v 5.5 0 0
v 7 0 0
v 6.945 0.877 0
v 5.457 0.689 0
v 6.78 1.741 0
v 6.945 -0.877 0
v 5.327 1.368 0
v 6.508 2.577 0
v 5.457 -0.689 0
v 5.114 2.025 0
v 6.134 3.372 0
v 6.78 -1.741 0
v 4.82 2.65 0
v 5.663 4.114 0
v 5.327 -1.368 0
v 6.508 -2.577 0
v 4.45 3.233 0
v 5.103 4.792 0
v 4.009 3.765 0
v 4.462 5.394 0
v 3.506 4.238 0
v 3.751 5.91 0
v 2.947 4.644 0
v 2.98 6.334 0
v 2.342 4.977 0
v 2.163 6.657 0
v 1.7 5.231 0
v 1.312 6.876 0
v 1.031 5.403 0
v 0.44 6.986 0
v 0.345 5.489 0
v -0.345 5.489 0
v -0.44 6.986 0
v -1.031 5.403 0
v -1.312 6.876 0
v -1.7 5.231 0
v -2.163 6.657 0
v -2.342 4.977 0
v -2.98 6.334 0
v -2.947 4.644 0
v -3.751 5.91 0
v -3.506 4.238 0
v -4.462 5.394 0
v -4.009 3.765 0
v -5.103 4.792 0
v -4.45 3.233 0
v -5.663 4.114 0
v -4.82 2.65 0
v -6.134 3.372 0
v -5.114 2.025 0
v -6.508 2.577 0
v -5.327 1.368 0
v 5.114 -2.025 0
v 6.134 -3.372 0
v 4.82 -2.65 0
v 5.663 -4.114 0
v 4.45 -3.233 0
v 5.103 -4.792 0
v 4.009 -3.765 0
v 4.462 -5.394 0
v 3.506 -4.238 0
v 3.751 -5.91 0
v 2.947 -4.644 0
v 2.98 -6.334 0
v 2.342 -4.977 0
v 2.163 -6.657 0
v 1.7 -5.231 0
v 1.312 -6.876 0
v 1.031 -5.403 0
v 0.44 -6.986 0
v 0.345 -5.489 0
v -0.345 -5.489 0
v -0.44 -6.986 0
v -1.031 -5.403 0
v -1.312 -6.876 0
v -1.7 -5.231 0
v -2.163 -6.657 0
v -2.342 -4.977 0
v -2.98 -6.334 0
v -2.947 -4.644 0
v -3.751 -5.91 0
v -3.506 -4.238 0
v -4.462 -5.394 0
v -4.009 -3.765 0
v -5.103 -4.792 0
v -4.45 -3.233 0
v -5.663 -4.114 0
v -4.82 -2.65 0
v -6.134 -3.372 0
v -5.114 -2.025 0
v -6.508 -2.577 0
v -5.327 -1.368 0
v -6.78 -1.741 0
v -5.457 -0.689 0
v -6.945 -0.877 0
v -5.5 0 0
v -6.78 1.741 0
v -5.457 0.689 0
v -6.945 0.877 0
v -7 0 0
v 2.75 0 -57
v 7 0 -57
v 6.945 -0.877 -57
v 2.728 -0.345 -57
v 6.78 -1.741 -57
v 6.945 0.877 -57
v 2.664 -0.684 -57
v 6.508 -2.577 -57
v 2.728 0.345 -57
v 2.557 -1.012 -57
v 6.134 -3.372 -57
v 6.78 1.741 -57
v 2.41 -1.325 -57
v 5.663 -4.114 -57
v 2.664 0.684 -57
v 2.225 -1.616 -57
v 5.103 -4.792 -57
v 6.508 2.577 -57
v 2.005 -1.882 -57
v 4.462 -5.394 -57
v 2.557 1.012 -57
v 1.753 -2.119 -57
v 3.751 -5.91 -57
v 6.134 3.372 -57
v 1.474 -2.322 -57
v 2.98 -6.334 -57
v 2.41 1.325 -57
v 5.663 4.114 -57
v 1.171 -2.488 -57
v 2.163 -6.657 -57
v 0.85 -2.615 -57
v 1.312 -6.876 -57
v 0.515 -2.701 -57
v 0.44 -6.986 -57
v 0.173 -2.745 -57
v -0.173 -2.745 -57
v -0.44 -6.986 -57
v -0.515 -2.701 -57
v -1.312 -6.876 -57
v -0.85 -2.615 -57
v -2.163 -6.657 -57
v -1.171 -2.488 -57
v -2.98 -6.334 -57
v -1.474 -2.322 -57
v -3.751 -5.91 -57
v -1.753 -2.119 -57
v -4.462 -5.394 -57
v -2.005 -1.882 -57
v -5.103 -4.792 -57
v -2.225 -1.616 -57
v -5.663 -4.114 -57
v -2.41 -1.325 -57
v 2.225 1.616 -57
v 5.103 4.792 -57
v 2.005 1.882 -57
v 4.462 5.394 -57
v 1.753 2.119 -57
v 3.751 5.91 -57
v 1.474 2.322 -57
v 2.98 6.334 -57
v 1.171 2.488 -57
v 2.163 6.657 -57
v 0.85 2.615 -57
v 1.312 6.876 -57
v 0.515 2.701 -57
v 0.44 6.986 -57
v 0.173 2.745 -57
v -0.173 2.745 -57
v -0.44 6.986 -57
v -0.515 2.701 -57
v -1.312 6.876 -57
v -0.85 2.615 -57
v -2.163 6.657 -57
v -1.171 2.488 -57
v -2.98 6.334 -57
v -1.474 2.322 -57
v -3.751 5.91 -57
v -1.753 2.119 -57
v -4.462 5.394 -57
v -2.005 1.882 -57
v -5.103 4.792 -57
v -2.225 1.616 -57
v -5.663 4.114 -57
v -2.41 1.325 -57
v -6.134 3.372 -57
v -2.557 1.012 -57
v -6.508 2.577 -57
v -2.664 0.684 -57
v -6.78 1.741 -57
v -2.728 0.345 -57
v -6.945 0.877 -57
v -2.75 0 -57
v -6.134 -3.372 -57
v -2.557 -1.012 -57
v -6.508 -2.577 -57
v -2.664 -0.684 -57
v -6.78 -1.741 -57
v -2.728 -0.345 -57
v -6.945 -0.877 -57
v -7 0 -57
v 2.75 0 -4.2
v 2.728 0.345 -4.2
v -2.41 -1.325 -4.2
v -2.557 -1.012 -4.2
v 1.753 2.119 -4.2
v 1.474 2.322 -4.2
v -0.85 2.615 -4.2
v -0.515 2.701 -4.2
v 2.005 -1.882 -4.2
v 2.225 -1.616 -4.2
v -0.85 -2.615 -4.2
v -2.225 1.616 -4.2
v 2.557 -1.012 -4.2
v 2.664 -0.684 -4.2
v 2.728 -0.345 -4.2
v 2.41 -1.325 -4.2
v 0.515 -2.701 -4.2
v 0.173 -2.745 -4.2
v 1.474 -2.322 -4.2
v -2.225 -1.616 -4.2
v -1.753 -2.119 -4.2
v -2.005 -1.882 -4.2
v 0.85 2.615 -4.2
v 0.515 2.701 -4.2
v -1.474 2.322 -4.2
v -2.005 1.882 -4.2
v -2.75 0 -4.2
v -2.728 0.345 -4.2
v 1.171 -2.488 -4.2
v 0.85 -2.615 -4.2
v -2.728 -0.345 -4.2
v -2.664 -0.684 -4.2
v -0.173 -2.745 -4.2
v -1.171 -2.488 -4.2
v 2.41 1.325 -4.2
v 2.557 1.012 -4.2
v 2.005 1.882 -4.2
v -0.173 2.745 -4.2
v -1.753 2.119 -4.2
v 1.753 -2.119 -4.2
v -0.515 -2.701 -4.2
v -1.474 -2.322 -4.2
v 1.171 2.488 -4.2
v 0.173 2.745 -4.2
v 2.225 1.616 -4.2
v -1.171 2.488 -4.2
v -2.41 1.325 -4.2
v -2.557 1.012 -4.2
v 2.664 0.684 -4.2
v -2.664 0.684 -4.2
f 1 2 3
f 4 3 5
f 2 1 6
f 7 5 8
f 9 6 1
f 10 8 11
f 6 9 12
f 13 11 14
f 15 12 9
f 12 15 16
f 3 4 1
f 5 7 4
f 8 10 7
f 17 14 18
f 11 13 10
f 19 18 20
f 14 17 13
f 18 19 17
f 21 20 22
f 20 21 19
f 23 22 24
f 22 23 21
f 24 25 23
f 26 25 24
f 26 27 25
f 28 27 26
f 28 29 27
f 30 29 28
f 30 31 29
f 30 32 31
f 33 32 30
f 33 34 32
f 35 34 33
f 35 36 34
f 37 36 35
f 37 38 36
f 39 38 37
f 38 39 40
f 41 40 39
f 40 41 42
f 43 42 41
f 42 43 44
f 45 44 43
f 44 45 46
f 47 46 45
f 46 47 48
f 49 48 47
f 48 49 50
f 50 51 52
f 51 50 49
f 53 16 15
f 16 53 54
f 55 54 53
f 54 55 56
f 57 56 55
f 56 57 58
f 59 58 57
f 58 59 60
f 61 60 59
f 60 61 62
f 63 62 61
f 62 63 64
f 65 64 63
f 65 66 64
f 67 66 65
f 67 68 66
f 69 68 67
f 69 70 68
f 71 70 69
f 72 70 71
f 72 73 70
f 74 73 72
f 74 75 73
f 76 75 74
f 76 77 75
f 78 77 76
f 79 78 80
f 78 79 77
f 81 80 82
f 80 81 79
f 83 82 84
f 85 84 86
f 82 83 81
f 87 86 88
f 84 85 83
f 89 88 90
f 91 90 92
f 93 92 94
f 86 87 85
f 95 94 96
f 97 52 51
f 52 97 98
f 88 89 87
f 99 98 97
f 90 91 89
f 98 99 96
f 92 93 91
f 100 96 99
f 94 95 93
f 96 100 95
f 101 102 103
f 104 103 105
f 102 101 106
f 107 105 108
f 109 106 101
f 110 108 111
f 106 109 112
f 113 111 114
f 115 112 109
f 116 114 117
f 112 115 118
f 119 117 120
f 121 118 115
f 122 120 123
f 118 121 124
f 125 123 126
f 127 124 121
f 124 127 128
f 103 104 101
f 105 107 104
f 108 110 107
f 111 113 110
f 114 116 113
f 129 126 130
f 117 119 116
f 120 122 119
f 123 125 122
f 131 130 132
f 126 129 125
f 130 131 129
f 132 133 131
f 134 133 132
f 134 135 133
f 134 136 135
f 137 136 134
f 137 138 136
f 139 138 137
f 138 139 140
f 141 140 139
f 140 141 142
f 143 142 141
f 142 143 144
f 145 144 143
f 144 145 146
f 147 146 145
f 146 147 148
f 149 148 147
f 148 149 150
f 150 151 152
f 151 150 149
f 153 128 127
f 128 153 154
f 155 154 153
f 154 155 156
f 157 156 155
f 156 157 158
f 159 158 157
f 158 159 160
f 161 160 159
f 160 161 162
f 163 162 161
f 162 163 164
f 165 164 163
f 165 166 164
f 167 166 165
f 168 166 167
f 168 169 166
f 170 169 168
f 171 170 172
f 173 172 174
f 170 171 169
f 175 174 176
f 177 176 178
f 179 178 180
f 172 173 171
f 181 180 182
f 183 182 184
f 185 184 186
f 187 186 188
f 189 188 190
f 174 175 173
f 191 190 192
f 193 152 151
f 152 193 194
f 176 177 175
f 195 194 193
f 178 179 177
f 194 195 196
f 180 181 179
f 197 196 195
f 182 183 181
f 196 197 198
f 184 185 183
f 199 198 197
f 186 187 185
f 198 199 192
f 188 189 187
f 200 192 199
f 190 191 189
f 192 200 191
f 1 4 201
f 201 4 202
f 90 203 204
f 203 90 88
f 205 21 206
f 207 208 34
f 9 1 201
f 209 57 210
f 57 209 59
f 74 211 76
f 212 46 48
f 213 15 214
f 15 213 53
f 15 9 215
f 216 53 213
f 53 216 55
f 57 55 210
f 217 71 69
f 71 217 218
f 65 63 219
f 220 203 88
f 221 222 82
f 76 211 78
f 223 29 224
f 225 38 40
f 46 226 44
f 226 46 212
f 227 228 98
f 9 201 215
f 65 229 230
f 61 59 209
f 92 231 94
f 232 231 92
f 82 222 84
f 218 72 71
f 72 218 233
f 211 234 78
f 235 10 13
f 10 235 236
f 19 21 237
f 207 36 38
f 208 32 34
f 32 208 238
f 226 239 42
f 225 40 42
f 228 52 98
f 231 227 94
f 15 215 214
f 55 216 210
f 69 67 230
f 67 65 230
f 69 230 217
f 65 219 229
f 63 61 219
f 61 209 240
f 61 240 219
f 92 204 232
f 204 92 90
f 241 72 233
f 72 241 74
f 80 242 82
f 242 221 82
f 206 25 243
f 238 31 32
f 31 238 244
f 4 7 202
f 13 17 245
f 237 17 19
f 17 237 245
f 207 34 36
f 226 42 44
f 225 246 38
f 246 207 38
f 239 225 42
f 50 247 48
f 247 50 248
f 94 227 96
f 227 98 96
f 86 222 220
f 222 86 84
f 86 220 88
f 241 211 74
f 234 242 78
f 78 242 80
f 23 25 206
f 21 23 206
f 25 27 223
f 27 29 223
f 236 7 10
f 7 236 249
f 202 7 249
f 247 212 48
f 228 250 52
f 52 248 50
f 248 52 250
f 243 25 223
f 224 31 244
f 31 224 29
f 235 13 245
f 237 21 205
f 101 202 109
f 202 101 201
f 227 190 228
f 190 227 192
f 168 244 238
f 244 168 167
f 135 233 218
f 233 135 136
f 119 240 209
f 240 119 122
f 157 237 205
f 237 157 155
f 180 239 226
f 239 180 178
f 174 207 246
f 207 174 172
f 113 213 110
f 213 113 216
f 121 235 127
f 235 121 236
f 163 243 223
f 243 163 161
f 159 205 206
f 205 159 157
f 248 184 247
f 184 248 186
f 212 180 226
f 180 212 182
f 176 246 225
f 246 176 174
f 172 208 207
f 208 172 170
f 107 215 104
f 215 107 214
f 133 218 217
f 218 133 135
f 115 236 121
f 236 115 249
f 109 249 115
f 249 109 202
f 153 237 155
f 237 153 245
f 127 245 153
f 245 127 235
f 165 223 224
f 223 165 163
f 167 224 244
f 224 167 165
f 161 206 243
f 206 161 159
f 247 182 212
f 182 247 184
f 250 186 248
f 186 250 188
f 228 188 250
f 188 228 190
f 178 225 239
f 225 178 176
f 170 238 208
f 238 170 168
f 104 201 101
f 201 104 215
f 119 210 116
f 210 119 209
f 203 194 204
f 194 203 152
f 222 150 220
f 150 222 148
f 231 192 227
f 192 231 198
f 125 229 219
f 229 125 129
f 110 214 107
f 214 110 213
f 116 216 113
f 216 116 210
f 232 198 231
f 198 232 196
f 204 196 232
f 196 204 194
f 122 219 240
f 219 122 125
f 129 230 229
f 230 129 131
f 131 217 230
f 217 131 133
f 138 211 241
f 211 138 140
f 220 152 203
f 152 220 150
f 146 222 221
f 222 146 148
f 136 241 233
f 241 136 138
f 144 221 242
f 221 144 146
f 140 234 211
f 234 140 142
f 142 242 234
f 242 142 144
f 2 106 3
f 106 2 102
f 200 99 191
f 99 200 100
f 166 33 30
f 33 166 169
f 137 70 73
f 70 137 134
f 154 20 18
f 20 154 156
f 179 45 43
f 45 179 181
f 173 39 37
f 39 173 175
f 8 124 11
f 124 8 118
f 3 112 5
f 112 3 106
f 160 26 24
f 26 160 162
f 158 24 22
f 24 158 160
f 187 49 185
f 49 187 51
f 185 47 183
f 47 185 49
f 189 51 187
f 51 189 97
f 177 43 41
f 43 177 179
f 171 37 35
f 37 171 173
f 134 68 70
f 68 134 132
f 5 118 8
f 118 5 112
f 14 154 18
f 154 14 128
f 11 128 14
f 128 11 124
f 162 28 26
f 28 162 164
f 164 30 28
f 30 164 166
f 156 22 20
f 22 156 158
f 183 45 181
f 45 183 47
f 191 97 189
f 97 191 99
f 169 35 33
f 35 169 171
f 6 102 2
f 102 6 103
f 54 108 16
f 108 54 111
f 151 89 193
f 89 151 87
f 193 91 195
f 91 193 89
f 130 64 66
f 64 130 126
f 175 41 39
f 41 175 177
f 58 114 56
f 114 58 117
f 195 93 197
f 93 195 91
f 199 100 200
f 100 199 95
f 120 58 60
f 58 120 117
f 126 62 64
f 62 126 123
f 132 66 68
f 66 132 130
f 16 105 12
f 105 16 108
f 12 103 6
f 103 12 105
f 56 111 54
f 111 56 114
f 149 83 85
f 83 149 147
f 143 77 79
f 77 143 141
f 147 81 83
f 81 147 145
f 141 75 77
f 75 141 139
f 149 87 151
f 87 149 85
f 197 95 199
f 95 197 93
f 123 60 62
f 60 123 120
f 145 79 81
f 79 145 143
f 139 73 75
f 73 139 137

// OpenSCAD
$fn = 50;


difference() {
	union() {
		translate(v = [0, 0, -57.0000000000]) {
			cylinder(h = 57, r = 7.0000000000);
		}
		cylinder(h = 0, r = 13.0000000000);
	}
	union() {
		translate(v = [0, 0, 0]) {
			rotate(a = [0, 0, 0]) {
				difference() {
					union() {
						#translate(v = [0, 0, -57.0000000000]) {
							cylinder(h = 57, r = 2.2500000000);
						}
						#translate(v = [0, 0, -4.2000000000]) {
							cylinder(h = 4.2000000000, r = 7.0000000000, r1 = 2.7500000000, r2 = 5.5000000000);
						}
						#translate(v = [0, 0, -57.0000000000]) {
							cylinder(h = 57, r = 2.7500000000);
						}
						#translate(v = [0, 0, -57.0000000000]) {
							cylinder(h = 57, r = 2.2500000000);
						}
					}
					union();
				}
			}
		}
	}
}
